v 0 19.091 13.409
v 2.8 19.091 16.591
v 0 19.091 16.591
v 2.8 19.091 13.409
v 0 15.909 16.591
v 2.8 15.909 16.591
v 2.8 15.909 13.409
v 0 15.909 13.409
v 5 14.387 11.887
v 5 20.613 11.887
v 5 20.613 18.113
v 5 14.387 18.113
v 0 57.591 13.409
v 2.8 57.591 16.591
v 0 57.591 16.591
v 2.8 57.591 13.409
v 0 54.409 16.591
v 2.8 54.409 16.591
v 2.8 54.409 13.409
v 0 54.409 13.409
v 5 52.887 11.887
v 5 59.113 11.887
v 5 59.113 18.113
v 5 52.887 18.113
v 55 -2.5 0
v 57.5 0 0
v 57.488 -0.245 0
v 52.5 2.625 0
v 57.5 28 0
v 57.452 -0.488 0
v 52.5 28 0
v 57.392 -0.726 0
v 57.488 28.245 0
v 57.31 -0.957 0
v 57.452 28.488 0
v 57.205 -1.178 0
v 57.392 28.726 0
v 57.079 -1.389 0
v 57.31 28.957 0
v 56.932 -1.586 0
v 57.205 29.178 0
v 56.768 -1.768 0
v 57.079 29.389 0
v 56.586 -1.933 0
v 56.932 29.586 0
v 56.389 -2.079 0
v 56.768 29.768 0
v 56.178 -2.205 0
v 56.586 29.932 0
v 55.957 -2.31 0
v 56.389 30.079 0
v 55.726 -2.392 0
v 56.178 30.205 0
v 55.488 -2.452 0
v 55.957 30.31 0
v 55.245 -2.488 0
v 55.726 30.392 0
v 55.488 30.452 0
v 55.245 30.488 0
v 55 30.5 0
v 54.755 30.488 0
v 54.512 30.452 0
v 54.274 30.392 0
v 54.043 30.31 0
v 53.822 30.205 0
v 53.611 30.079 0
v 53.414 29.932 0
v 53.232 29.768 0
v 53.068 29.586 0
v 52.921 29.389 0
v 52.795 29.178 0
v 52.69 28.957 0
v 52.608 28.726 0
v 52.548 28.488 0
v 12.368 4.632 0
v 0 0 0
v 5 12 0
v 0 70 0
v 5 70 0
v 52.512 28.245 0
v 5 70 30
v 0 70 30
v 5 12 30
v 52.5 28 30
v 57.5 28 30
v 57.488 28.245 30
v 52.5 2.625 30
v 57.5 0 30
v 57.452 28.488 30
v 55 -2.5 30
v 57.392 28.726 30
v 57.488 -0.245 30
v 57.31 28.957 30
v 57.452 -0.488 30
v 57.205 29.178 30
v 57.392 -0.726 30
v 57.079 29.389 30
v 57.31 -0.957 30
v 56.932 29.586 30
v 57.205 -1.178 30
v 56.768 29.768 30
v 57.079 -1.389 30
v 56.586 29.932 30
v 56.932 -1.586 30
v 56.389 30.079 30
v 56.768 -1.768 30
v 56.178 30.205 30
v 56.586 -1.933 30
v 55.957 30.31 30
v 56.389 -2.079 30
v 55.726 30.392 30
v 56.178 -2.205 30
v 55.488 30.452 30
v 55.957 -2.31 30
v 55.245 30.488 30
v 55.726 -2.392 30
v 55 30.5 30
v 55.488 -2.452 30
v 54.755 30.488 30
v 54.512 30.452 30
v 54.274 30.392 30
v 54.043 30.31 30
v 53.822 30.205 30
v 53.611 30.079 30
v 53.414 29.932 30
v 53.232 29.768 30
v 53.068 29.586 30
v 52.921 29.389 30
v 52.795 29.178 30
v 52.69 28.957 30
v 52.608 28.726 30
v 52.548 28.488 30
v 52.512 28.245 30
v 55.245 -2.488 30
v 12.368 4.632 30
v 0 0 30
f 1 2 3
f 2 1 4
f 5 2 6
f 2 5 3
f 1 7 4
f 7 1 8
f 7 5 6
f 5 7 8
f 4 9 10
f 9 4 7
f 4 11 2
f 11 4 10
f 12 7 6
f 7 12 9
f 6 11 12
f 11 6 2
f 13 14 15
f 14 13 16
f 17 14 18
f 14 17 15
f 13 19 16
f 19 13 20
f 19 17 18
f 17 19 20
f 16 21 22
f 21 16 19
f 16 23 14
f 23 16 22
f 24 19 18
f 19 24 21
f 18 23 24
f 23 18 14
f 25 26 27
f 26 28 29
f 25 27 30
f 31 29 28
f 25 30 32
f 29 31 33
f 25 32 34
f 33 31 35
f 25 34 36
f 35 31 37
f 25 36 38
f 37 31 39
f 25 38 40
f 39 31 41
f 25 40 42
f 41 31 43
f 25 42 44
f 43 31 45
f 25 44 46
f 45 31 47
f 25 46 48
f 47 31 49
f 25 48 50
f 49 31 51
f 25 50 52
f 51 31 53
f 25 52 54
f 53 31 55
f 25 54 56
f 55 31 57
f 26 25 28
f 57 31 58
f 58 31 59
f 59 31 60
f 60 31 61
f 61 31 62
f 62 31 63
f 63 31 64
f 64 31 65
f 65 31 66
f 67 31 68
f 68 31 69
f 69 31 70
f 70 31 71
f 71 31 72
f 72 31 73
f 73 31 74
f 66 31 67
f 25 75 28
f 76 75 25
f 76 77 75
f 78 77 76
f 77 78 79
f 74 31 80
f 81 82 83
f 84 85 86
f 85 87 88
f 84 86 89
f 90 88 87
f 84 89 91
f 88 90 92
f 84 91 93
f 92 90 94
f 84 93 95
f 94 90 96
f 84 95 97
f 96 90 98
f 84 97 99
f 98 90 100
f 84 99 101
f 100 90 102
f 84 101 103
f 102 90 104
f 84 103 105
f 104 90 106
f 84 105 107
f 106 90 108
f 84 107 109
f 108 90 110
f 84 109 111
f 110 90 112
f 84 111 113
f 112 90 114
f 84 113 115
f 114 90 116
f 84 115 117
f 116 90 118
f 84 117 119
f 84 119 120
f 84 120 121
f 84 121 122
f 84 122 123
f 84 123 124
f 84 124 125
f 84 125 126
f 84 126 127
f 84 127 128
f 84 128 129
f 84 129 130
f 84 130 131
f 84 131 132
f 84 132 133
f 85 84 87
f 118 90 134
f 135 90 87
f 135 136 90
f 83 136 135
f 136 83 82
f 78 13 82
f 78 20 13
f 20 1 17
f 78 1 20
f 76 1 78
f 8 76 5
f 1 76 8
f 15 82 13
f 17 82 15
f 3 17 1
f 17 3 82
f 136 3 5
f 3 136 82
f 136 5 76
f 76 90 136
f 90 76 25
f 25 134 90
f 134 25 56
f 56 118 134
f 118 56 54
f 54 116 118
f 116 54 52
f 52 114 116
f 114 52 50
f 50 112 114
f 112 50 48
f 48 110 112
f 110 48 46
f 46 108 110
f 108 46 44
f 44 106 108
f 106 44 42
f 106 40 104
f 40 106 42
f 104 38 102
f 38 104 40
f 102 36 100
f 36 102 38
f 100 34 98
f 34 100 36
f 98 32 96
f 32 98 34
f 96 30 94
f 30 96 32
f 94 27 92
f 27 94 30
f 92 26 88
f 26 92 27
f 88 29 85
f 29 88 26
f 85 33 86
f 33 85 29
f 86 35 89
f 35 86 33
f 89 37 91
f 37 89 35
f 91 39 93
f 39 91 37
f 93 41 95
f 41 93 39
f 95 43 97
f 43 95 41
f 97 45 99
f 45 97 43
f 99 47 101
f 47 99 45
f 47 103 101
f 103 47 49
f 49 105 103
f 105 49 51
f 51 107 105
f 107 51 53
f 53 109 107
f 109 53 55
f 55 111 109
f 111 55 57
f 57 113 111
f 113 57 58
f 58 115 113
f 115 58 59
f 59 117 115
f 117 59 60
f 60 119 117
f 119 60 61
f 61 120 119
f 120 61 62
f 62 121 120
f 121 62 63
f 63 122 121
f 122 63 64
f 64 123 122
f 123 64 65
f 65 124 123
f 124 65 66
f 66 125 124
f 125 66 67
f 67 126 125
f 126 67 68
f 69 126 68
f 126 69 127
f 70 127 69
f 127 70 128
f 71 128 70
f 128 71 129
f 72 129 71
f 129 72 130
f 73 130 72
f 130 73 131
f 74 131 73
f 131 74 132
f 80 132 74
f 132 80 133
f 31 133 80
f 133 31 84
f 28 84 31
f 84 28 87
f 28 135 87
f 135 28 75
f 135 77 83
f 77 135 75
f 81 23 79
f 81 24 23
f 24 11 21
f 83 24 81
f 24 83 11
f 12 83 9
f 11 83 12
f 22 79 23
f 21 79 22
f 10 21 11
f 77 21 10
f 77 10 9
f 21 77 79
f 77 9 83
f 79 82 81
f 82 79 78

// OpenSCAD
// Under-desk headphone hook - screw mount. Print on its SIDE (profile flat on bed), no supports.
w        = 30;   // hook width (Z when printing)
plate_h  = 70;   // back plate height
t        = 5;    // wall thickness
arm      = 55;   // how far hook sticks out
lip      = 28;   // upward lip height
screw_d  = 4.5;  // screw shaft hole
head_d   = 9;    // countersink diameter
$fn = 64;

module profile() {
    // back plate
    square([t, plate_h]);
    // arm, slightly rising for grip
    hull() {
        translate([0, 0]) square([t, t]);
        translate([arm, 0]) circle(d = t);
    }
    // upward lip with rounded tip
    hull() {
        translate([arm, 0]) circle(d = t);
        translate([arm, lip]) circle(d = t);
    }
    // fillet between plate and arm
    polygon([[t, 0], [t + 12, 0], [t, 12]]);
}

difference() {
    linear_extrude(height = w) profile();
    // two countersunk screw holes through back plate (diamond cross-section = no overhang trouble)
    for (z = [w / 2]) for (y = [plate_h * 0.25, plate_h * 0.8]) {
        translate([-0.1, y, z]) rotate([0, 90, 0]) rotate([0, 0, 45]) {
            cylinder(d = screw_d, h = t + 0.2, $fn = 4);
        }
        translate([t - 2.2, y, z]) rotate([0, 90, 0]) rotate([0, 0, 45])
            cylinder(d1 = screw_d, d2 = head_d, h = 2.3, $fn = 4);
    }
}
